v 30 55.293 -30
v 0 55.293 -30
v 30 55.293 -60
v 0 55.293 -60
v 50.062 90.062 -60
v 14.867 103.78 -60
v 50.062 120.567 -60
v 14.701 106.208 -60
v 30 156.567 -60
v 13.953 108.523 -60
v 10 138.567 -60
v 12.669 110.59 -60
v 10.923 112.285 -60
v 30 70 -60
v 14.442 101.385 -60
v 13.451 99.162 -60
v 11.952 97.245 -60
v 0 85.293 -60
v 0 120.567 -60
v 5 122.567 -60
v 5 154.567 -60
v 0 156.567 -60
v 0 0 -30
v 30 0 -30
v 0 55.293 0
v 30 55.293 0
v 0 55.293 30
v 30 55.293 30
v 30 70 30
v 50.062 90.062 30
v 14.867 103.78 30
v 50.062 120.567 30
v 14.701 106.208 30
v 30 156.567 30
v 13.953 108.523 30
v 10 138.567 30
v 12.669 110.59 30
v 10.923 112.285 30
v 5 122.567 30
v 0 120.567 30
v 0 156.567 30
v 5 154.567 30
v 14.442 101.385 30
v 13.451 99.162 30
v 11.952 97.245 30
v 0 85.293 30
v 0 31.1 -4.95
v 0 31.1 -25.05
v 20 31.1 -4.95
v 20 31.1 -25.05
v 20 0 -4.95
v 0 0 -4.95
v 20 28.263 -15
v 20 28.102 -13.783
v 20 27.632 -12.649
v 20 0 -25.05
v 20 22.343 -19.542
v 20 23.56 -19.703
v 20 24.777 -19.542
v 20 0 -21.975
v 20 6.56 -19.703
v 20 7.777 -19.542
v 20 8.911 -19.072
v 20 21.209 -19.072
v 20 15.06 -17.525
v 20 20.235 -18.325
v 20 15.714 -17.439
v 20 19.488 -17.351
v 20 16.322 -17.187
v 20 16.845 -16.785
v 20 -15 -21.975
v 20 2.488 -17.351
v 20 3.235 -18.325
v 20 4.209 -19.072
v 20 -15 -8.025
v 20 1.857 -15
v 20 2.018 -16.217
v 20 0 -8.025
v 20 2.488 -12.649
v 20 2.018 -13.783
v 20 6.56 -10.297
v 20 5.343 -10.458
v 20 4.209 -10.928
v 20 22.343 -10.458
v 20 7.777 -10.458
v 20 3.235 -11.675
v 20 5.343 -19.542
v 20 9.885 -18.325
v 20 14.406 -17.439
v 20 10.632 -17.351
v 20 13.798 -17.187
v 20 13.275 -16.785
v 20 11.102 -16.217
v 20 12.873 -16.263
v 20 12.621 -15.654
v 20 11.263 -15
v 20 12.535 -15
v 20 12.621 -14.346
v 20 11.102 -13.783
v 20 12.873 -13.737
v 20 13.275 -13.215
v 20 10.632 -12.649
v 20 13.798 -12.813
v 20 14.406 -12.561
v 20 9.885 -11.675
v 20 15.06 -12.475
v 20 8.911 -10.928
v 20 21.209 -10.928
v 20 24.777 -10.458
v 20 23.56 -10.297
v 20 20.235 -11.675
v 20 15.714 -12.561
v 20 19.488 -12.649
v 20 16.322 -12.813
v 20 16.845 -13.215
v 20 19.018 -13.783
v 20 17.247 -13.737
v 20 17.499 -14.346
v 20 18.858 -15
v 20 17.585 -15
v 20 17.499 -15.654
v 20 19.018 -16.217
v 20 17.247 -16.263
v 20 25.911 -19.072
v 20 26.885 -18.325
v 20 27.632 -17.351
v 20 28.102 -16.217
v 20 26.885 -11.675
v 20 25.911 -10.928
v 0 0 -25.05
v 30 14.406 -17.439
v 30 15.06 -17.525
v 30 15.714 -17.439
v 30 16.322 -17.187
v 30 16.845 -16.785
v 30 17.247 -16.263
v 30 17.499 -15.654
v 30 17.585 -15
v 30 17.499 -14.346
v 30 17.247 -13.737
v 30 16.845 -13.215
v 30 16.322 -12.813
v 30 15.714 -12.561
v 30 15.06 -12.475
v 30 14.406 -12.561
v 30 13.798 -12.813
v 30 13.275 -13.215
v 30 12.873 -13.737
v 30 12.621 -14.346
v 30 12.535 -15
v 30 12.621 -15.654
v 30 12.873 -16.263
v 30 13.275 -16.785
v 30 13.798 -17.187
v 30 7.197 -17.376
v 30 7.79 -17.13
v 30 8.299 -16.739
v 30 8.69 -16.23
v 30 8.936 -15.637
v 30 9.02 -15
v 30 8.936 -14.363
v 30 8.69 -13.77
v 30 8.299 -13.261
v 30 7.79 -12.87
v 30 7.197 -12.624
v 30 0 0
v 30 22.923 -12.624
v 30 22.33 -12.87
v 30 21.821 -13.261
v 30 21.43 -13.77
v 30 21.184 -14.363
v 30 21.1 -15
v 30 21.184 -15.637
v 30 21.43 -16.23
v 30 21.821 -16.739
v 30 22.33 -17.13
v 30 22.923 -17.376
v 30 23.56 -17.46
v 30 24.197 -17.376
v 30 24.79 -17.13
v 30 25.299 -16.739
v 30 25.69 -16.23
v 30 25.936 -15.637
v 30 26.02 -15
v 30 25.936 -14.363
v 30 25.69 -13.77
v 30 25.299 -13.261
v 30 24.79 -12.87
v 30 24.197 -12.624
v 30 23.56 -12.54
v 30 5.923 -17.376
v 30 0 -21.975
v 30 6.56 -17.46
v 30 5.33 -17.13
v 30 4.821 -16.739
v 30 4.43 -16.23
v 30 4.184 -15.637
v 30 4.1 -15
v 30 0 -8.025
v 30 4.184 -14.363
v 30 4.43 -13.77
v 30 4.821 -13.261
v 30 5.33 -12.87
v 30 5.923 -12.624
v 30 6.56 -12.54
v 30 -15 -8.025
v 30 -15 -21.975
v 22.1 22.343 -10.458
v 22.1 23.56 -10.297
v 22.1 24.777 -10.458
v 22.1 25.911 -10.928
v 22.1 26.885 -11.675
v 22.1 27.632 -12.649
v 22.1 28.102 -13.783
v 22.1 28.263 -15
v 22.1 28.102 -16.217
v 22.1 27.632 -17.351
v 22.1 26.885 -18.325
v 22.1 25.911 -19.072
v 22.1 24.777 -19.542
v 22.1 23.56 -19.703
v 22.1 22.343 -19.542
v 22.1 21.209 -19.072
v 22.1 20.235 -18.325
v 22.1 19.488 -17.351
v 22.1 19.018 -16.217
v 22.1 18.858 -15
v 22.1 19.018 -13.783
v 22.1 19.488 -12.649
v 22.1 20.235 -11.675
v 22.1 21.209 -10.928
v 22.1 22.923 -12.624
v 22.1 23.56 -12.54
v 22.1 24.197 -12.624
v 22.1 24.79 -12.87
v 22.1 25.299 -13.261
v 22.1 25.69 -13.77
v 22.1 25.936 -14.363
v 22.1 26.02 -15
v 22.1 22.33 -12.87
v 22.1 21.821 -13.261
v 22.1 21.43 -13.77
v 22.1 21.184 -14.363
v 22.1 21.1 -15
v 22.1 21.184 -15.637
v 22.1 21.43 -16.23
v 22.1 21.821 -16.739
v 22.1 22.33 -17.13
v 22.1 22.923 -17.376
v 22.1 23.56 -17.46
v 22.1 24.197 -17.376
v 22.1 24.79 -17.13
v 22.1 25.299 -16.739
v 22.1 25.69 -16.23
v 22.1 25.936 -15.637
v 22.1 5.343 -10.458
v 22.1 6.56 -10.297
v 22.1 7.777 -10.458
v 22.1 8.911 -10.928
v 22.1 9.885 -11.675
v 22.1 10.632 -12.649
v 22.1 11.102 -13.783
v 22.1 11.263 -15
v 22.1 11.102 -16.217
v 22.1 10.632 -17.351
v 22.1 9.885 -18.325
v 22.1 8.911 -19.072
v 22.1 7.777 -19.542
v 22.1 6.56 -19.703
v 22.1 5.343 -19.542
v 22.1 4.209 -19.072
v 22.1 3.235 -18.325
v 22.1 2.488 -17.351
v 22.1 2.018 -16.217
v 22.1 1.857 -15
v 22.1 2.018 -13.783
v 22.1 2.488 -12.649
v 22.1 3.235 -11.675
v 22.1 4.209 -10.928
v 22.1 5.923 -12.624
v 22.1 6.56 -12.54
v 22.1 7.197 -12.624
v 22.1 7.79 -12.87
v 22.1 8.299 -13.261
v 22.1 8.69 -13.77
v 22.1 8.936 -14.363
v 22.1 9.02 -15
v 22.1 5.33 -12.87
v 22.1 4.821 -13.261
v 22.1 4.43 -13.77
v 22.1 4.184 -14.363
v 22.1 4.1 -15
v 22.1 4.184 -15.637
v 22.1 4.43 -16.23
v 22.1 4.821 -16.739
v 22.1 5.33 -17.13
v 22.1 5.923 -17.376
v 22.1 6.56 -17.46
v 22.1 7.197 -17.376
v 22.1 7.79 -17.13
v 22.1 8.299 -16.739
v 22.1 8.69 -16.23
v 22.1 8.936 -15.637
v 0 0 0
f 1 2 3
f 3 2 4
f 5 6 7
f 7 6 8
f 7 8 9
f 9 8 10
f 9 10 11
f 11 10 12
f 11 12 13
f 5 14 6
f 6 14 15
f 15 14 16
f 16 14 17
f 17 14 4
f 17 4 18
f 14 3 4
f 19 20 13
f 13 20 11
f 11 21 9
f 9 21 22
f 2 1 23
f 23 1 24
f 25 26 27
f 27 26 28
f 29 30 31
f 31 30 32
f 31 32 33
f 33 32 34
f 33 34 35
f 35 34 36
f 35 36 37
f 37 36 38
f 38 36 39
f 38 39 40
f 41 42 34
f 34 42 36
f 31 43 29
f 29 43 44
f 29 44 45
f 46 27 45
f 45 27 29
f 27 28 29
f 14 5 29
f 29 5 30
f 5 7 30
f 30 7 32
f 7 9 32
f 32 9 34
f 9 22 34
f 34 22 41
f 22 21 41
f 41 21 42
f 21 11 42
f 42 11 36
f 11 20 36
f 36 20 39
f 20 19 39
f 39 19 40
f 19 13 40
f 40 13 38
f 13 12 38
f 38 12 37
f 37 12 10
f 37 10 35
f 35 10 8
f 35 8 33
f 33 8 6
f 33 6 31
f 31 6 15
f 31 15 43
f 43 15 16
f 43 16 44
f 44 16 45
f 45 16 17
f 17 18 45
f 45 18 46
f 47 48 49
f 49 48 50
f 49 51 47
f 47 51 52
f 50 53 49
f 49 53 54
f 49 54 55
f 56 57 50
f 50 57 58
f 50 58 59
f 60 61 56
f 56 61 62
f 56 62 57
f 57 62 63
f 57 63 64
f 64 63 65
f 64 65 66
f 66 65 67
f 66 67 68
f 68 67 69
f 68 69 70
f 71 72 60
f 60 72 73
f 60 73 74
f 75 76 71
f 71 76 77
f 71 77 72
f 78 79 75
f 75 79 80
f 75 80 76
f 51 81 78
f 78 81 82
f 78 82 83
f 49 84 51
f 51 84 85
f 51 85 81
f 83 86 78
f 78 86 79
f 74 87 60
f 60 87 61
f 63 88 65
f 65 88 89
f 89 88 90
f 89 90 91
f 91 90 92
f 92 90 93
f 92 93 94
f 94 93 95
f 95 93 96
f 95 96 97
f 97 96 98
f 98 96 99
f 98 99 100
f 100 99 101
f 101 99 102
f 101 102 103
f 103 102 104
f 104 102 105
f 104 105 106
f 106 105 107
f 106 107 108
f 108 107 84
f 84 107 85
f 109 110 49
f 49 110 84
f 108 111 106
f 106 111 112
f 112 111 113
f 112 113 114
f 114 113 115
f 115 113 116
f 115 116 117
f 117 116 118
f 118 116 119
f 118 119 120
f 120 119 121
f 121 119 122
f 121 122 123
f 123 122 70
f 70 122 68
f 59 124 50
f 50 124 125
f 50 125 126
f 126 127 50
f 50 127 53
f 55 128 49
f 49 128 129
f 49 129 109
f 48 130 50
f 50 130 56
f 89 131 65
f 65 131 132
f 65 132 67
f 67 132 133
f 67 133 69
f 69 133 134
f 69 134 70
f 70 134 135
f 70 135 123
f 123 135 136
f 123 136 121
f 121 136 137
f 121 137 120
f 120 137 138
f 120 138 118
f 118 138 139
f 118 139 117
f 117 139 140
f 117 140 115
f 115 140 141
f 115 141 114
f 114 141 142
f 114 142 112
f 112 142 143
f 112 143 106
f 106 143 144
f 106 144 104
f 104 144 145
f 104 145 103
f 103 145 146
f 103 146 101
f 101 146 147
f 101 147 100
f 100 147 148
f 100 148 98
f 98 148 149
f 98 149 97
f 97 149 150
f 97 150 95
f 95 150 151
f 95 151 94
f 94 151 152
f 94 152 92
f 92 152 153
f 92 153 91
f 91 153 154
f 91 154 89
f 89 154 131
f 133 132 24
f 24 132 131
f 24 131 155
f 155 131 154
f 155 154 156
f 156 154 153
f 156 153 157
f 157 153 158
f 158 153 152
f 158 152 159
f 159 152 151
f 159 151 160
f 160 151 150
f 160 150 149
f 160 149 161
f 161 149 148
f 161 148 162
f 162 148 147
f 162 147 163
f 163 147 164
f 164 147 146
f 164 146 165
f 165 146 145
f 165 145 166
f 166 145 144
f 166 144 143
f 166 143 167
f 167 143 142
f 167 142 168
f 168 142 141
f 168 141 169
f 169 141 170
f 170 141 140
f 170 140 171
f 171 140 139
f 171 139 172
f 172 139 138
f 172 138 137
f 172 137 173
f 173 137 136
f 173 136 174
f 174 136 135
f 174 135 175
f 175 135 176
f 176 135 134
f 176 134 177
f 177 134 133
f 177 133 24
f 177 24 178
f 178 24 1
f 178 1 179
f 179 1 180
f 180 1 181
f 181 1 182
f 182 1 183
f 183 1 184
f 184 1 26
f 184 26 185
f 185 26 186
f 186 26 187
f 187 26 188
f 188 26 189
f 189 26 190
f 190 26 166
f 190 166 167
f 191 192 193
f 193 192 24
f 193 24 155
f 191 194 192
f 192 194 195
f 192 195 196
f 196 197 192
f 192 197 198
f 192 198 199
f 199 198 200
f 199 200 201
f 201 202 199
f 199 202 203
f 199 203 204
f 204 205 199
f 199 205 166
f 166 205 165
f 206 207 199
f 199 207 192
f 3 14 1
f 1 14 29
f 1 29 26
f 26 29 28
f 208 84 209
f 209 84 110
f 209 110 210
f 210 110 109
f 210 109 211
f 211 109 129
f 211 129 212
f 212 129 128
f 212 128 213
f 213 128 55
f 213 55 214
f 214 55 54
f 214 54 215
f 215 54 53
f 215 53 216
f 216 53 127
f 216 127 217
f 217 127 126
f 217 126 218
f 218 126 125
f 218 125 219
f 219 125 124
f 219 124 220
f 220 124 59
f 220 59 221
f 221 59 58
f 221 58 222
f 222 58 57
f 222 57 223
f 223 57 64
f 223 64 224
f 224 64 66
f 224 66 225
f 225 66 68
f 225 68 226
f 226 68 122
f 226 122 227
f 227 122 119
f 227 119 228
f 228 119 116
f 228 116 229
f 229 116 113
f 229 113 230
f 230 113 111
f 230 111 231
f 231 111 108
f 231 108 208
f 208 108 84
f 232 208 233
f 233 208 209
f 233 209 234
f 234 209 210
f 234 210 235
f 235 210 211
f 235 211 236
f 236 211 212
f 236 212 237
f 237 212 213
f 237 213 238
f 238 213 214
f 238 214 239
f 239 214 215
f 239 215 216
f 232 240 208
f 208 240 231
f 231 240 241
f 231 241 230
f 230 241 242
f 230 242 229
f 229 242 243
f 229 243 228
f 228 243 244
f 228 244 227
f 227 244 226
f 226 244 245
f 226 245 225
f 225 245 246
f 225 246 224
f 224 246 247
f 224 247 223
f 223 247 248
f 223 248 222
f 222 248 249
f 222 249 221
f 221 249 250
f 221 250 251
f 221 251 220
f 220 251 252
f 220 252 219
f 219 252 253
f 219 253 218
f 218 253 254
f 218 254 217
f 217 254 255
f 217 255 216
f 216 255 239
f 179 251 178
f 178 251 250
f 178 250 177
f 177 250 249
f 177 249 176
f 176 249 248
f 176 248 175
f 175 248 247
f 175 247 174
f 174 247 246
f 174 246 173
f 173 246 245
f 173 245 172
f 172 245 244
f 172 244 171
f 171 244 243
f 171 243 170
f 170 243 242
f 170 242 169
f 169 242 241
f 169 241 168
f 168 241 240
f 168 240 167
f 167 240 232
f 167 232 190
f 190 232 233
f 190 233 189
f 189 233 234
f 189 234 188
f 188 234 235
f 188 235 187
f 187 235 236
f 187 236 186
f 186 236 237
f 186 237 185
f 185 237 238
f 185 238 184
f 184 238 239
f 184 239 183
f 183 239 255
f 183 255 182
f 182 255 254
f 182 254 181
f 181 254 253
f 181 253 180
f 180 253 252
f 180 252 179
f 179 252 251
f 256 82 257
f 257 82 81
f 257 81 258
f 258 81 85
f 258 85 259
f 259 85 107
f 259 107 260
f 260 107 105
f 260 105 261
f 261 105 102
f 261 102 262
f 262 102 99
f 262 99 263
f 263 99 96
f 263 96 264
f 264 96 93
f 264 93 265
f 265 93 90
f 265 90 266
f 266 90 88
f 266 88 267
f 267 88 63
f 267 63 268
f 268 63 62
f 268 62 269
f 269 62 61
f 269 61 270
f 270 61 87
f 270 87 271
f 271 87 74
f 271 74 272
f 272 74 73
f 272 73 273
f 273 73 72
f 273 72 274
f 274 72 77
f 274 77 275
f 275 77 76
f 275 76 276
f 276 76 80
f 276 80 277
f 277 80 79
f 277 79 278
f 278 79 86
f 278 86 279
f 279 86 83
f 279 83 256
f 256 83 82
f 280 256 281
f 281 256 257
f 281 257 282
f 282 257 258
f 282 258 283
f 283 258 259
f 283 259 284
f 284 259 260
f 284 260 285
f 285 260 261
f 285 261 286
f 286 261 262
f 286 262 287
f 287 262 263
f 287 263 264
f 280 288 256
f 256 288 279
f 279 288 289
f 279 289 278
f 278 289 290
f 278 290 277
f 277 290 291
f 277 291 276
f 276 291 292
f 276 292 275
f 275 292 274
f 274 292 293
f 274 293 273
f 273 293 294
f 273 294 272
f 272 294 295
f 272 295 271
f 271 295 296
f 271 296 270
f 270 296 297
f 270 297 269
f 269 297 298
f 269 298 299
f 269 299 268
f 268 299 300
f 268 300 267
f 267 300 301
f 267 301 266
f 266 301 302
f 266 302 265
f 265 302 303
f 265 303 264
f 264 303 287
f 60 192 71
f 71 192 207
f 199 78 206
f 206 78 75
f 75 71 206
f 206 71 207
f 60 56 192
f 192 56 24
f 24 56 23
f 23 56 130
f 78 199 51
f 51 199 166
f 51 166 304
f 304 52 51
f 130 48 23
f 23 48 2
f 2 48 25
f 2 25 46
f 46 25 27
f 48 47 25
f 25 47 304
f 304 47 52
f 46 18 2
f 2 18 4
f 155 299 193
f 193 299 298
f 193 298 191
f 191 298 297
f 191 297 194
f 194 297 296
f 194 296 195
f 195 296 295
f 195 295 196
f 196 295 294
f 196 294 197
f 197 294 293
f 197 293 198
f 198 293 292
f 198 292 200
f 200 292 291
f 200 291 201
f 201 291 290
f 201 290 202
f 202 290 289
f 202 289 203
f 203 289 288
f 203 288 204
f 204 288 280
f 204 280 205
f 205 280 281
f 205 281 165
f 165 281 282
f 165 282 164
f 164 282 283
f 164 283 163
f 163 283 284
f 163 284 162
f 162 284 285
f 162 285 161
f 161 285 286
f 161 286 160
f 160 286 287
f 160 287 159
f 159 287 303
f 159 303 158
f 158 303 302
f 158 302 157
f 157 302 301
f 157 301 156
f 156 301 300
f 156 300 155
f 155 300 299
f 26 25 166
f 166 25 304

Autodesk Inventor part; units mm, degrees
ref_plane "YZ Plane" through (0, 0, 0) normal (1, 0, 0) x (0, 1, 0)
ref_plane "XZ Plane" through (0, 0, 0) normal (0, 1, 0) x (-1, 0, 0)
sketch "Sketch1" plane through (0, 0, 0) normal (0, 0, 1) x (1, 0, 0)
  line L0 (0, 0) -> (25, 0)
  line L1 (25, 0) -> (25, 40)
  line L2 (25, 40) -> (0, 40)
  line L3 (0, 40) -> (0, 0)
  dimension "d1" = 25
  dimension "d2" = 40
  dimension "d3" = 25
extrude "Extrusion1" add sketch "Sketch1" against normal blind 30
sketch "Sketch2" plane through (25, 0, 0) normal (1, 0, 0) x (0, 0, -1)
  line L0 (0, 0) -> (30, 0) projected
  circle A0 centre (15, 6.56) radius 2.46
extrude "Extrusion2" cut sketch "Sketch2" against normal blind 30
sketch "Sketch3" plane through (0, 0, 0) normal (-1, 0, 0) x (0, 0, 1)
  line L0 (0, 0) -> (-30, 0) projected
  line L1 (-25.05, 0) -> (-4.95, 0)
  line L2 (-4.95, 0) -> (-4.95, 33.12)
  line L3 (-4.95, 33.12) -> (-25.05, 33.12)
  line L4 (-25.05, 33.12) -> (-25.05, 0)
  dimension "d11" = 20.1
extrude "Extrusion3" cut sketch "Sketch3" against normal blind 20
sketch "Sketch4" plane through (0, 0, 0) normal (0, -1, 0) x (1, 0, 0)
  line L0 (20, -4.95) -> (20, -25.05) projected
  line L1 (20, -15) -> (25, -15)
  line L2 (25, 0) -> (25, -30) projected
  line L3 (20, -8.025) -> (25, -8.025)
  line L4 (25, -8.025) -> (25, -21.975)
  line L5 (25, -21.975) -> (20, -21.975)
  line L6 (20, -21.975) -> (20, -8.025)
  line L7 (20, -8.025) -> (25, -21.975) construction
  line L8 (25, -8.025) -> (20, -21.975) construction
  line L9 (25, -12.54) -> (25, -17.46) projected
  point P0 (0, 0)
  point P1 (22.5, -15)
  dimension "d14" = 13.95
extrude "Extrusion4" add sketch "Sketch4" along normal blind 15
sketch "Sketch5" plane through (20, 0, 0) normal (-1, 0, 0) x (0, 0, 1)
  circle A0 centre (-15, 6.56) radius 2.46 projected
  circle A1 centre (-15, 6.56) radius 4.7025
  circle A2 centre (-15, 6.56) radius 2.46 projected
  circle A3 centre (-15, 6.56) radius 2.46
  point P0 (0, 0)
  dimension "d17" = 9.405
extrude "Extrusion5" cut sketch "Sketch5" against normal blind 2.1
sketch "Sketch6" plane through (25, 0, 0) normal (1, 0, 0) x (0, 0, -1)
  circle A0 centre (15, 6.56) radius 4.7025 projected
  line L0 (15, 6.56) -> (15, 23.56)
  circle A1 centre (15, 23.56) radius 2.46
  point P0 (0, 0)
  dimension "d20" = 17
  dimension "d21" = 4.92
extrude "Extrusion6" cut sketch "Sketch6" against normal blind 10 contours A1
sketch "Sketch7" plane through (20, 0, 0) normal (-1, 0, 0) x (0, 0, 1)
  circle A0 centre (-15, 23.56) radius 2.46 projected
  circle A1 centre (-15, 23.56) radius 4.7025
  point P0 (0, 0)
  dimension "d24" = 9.405
extrude "Extrusion7" cut sketch "Sketch7" against normal blind 2.1
sketch "Sketch9" plane through (25, 0, 0) normal (1, 0, 0) x (0, 0, -1)
  circle A0 centre (15, 6.56) radius 2.46 projected
  circle A1 centre (15, 6.56) radius 2.46
  circle A2 centre (15, 23.56) radius 2.46 projected
  circle A3 centre (15, 23.56) radius 2.46
  line L0 (30, 40) -> (30, 0) projected
  line L1 (30, 0) -> (30, 40)
  line L2 (30, 40) -> (0, 40)
  line L3 (0, 40) -> (0, 0)
  line L4 (0, 0) -> (8.025, 0) projected
  line L5 (21.975, 0) -> (21.975, -15)
  line L6 (21.975, -15) -> (8.025, -15)
  line L7 (8.025, -15) -> (8.025, 0)
  line L8 (0, 0) -> (8.025, 0)
  line L9 (21.975, 0) -> (30, 0)
extrude "Extrusion8" add sketch "Sketch9" along normal blind 5
sketch "Sketch10" plane through (0, 40, 0) normal (0, 1, 0) x (1, 0, 0)
  line L0 (0, 30) -> (30, 30) projected
  line L1 (30, 0) -> (0, 0) projected
  line L2 (0, 30) -> (30, 30)
  line L3 (30, 30) -> (30, 0)
  line L4 (30, 0) -> (0, 0)
  line L5 (0, 0) -> (0, 30)
extrude "Extrusion9" add sketch "Sketch10" along normal blind 30
sketch "Sketch12" plane through (30, 0, 0) normal (1, 0, 0) x (0, 0, -1)
  circle A0 centre (15, 6.56) radius 2.46 projected
  line L0 (15, 6.56) -> (15, 15.06)
  circle A1 centre (15, 15.06) radius 2.525
  point P0 (0, 0)
  dimension "d31" = 8.5
  dimension "d33" = 5.05
extrude "Extrusion10" cut sketch "Sketch12" against normal blind 30 contours A1
sketch "Sketch15" plane through (0, 0, -25.05) normal (-1, 0, 0) x (0, 0, 1)
  line L0 (0, 33.12) -> (20.1, 33.12) projected
  line L1 (20.1, 33.12) -> (20.1, 0) projected
  line L2 (0, 33.12) -> (20.1, 33.12)
  line L3 (20.1, 33.12) -> (20.1, 31.1)
  line L4 (20.1, 31.1) -> (0, 31.1)
  line L5 (0, 31.1) -> (0, 33.12)
  point P0 (25.05, 0)
  dimension "d57" = 2.02
extrude "Extrusion13" add sketch "Sketch15" against normal blind 20
sketch "Sketch17" plane through (0, 0, 0) normal (0, 0, 1) x (1, 0, 0)
  line L0 (0, 70) -> (30, 70) projected
  line L1 (30, 70) -> (50.0622, 90.0622)
  line L2 (30, 70) -> (80, 70) construction
  line L3 (11.9522, 97.2454) -> (0, 85.2932)
  line L4 (0, 70) -> (0, 85.2932)
  line L5 (0, 70) -> (0, 0) projected
  line L6 (0, 70) -> (30, 70)
  line L7 (10.923, 112.2849) -> (0, 120.567)
  line L8 (50.0622, 105.3553) -> (50.0622, 120.567)
  line L9 (50.0622, 105.3553) -> (50.0622, 90.0622)
  arc A0 (11.9522, 97.2454) -> (10.923, 112.2849) centre (4.8811, 104.3165) ccw
  line L10 (0, 156.567) -> (30, 156.567)
  line L11 (30, 156.567) -> (50.0622, 120.567)
  line L12 (5, 154.567) -> (0, 156.567)
  line L13 (5, 122.567) -> (0, 120.567)
  line L14 (5, 122.567) -> (10, 138.567)
  line L15 (10, 138.567) -> (5, 154.567)
  dimension "d61" = 45
  dimension "d62" = 32.0271
  dimension "d72" = 10
extrude "Extrusion14" add sketch "Sketch17" against normal blind 30
sketch "Sketch23" plane through (0, 0, 0) normal (0, 0, 1) x (1, 0, 0)
  line L0 (50.0622, 90.0622) -> (30, 70) projected
  line L1 (30, 70) -> (50.0622, 90.0622)
  line L2 (50.0622, 120.567) -> (50.0622, 90.0622) projected
  line L3 (50.0622, 90.0622) -> (50.0622, 120.567)
  line L4 (30, 156.567) -> (50.0622, 120.567) projected
  line L5 (50.0622, 120.567) -> (30, 156.567)
  line L6 (0, 156.567) -> (30, 156.567) projected
  line L7 (30, 156.567) -> (0, 156.567)
  line L8 (5, 154.567) -> (0, 156.567) projected
  line L9 (0, 156.567) -> (5, 154.567)
  line L10 (10, 138.567) -> (5, 154.567) projected
  line L11 (5, 154.567) -> (10, 138.567)
  line L12 (5, 122.567) -> (10, 138.567) projected
  line L13 (10, 138.567) -> (5, 122.567)
  line L14 (0, 120.567) -> (5, 122.567) projected
  line L15 (5, 122.567) -> (0, 120.567)
  line L16 (10.923, 112.2849) -> (0, 120.567) projected
  line L17 (0, 120.567) -> (10.923, 112.2849)
  line L18 (0, 85.2932) -> (11.9522, 97.2454) projected
  line L19 (11.9522, 97.2454) -> (0, 85.2932)
  line L20 (0, 85.2932) -> (0, 55.2932)
  line L21 (0, 0) -> (0, 85.2932) projected
  line L22 (0, 55.2932) -> (30, 55.2932)
  line L23 (30, 0) -> (30, 70) projected
  line L24 (30, 55.2932) -> (30, 70)
  arc A0 (11.9522, 97.2454) -> (10.923, 112.2849) centre (4.8811, 104.3165) ccw
  dimension "d97" = 30
extrude "Extrusion15" add sketch "Sketch23" along normal blind 30
ref_plane "Work Plane1" through (0, 0, -15) normal (0, 0, 1) x (1, 0, 0)
mirror "Mirror1" about plane through (0, 0, -15) normal (0, 0, 1) of "Extrusion15"
properties part number "rec_c_32mm_x_90mm"
